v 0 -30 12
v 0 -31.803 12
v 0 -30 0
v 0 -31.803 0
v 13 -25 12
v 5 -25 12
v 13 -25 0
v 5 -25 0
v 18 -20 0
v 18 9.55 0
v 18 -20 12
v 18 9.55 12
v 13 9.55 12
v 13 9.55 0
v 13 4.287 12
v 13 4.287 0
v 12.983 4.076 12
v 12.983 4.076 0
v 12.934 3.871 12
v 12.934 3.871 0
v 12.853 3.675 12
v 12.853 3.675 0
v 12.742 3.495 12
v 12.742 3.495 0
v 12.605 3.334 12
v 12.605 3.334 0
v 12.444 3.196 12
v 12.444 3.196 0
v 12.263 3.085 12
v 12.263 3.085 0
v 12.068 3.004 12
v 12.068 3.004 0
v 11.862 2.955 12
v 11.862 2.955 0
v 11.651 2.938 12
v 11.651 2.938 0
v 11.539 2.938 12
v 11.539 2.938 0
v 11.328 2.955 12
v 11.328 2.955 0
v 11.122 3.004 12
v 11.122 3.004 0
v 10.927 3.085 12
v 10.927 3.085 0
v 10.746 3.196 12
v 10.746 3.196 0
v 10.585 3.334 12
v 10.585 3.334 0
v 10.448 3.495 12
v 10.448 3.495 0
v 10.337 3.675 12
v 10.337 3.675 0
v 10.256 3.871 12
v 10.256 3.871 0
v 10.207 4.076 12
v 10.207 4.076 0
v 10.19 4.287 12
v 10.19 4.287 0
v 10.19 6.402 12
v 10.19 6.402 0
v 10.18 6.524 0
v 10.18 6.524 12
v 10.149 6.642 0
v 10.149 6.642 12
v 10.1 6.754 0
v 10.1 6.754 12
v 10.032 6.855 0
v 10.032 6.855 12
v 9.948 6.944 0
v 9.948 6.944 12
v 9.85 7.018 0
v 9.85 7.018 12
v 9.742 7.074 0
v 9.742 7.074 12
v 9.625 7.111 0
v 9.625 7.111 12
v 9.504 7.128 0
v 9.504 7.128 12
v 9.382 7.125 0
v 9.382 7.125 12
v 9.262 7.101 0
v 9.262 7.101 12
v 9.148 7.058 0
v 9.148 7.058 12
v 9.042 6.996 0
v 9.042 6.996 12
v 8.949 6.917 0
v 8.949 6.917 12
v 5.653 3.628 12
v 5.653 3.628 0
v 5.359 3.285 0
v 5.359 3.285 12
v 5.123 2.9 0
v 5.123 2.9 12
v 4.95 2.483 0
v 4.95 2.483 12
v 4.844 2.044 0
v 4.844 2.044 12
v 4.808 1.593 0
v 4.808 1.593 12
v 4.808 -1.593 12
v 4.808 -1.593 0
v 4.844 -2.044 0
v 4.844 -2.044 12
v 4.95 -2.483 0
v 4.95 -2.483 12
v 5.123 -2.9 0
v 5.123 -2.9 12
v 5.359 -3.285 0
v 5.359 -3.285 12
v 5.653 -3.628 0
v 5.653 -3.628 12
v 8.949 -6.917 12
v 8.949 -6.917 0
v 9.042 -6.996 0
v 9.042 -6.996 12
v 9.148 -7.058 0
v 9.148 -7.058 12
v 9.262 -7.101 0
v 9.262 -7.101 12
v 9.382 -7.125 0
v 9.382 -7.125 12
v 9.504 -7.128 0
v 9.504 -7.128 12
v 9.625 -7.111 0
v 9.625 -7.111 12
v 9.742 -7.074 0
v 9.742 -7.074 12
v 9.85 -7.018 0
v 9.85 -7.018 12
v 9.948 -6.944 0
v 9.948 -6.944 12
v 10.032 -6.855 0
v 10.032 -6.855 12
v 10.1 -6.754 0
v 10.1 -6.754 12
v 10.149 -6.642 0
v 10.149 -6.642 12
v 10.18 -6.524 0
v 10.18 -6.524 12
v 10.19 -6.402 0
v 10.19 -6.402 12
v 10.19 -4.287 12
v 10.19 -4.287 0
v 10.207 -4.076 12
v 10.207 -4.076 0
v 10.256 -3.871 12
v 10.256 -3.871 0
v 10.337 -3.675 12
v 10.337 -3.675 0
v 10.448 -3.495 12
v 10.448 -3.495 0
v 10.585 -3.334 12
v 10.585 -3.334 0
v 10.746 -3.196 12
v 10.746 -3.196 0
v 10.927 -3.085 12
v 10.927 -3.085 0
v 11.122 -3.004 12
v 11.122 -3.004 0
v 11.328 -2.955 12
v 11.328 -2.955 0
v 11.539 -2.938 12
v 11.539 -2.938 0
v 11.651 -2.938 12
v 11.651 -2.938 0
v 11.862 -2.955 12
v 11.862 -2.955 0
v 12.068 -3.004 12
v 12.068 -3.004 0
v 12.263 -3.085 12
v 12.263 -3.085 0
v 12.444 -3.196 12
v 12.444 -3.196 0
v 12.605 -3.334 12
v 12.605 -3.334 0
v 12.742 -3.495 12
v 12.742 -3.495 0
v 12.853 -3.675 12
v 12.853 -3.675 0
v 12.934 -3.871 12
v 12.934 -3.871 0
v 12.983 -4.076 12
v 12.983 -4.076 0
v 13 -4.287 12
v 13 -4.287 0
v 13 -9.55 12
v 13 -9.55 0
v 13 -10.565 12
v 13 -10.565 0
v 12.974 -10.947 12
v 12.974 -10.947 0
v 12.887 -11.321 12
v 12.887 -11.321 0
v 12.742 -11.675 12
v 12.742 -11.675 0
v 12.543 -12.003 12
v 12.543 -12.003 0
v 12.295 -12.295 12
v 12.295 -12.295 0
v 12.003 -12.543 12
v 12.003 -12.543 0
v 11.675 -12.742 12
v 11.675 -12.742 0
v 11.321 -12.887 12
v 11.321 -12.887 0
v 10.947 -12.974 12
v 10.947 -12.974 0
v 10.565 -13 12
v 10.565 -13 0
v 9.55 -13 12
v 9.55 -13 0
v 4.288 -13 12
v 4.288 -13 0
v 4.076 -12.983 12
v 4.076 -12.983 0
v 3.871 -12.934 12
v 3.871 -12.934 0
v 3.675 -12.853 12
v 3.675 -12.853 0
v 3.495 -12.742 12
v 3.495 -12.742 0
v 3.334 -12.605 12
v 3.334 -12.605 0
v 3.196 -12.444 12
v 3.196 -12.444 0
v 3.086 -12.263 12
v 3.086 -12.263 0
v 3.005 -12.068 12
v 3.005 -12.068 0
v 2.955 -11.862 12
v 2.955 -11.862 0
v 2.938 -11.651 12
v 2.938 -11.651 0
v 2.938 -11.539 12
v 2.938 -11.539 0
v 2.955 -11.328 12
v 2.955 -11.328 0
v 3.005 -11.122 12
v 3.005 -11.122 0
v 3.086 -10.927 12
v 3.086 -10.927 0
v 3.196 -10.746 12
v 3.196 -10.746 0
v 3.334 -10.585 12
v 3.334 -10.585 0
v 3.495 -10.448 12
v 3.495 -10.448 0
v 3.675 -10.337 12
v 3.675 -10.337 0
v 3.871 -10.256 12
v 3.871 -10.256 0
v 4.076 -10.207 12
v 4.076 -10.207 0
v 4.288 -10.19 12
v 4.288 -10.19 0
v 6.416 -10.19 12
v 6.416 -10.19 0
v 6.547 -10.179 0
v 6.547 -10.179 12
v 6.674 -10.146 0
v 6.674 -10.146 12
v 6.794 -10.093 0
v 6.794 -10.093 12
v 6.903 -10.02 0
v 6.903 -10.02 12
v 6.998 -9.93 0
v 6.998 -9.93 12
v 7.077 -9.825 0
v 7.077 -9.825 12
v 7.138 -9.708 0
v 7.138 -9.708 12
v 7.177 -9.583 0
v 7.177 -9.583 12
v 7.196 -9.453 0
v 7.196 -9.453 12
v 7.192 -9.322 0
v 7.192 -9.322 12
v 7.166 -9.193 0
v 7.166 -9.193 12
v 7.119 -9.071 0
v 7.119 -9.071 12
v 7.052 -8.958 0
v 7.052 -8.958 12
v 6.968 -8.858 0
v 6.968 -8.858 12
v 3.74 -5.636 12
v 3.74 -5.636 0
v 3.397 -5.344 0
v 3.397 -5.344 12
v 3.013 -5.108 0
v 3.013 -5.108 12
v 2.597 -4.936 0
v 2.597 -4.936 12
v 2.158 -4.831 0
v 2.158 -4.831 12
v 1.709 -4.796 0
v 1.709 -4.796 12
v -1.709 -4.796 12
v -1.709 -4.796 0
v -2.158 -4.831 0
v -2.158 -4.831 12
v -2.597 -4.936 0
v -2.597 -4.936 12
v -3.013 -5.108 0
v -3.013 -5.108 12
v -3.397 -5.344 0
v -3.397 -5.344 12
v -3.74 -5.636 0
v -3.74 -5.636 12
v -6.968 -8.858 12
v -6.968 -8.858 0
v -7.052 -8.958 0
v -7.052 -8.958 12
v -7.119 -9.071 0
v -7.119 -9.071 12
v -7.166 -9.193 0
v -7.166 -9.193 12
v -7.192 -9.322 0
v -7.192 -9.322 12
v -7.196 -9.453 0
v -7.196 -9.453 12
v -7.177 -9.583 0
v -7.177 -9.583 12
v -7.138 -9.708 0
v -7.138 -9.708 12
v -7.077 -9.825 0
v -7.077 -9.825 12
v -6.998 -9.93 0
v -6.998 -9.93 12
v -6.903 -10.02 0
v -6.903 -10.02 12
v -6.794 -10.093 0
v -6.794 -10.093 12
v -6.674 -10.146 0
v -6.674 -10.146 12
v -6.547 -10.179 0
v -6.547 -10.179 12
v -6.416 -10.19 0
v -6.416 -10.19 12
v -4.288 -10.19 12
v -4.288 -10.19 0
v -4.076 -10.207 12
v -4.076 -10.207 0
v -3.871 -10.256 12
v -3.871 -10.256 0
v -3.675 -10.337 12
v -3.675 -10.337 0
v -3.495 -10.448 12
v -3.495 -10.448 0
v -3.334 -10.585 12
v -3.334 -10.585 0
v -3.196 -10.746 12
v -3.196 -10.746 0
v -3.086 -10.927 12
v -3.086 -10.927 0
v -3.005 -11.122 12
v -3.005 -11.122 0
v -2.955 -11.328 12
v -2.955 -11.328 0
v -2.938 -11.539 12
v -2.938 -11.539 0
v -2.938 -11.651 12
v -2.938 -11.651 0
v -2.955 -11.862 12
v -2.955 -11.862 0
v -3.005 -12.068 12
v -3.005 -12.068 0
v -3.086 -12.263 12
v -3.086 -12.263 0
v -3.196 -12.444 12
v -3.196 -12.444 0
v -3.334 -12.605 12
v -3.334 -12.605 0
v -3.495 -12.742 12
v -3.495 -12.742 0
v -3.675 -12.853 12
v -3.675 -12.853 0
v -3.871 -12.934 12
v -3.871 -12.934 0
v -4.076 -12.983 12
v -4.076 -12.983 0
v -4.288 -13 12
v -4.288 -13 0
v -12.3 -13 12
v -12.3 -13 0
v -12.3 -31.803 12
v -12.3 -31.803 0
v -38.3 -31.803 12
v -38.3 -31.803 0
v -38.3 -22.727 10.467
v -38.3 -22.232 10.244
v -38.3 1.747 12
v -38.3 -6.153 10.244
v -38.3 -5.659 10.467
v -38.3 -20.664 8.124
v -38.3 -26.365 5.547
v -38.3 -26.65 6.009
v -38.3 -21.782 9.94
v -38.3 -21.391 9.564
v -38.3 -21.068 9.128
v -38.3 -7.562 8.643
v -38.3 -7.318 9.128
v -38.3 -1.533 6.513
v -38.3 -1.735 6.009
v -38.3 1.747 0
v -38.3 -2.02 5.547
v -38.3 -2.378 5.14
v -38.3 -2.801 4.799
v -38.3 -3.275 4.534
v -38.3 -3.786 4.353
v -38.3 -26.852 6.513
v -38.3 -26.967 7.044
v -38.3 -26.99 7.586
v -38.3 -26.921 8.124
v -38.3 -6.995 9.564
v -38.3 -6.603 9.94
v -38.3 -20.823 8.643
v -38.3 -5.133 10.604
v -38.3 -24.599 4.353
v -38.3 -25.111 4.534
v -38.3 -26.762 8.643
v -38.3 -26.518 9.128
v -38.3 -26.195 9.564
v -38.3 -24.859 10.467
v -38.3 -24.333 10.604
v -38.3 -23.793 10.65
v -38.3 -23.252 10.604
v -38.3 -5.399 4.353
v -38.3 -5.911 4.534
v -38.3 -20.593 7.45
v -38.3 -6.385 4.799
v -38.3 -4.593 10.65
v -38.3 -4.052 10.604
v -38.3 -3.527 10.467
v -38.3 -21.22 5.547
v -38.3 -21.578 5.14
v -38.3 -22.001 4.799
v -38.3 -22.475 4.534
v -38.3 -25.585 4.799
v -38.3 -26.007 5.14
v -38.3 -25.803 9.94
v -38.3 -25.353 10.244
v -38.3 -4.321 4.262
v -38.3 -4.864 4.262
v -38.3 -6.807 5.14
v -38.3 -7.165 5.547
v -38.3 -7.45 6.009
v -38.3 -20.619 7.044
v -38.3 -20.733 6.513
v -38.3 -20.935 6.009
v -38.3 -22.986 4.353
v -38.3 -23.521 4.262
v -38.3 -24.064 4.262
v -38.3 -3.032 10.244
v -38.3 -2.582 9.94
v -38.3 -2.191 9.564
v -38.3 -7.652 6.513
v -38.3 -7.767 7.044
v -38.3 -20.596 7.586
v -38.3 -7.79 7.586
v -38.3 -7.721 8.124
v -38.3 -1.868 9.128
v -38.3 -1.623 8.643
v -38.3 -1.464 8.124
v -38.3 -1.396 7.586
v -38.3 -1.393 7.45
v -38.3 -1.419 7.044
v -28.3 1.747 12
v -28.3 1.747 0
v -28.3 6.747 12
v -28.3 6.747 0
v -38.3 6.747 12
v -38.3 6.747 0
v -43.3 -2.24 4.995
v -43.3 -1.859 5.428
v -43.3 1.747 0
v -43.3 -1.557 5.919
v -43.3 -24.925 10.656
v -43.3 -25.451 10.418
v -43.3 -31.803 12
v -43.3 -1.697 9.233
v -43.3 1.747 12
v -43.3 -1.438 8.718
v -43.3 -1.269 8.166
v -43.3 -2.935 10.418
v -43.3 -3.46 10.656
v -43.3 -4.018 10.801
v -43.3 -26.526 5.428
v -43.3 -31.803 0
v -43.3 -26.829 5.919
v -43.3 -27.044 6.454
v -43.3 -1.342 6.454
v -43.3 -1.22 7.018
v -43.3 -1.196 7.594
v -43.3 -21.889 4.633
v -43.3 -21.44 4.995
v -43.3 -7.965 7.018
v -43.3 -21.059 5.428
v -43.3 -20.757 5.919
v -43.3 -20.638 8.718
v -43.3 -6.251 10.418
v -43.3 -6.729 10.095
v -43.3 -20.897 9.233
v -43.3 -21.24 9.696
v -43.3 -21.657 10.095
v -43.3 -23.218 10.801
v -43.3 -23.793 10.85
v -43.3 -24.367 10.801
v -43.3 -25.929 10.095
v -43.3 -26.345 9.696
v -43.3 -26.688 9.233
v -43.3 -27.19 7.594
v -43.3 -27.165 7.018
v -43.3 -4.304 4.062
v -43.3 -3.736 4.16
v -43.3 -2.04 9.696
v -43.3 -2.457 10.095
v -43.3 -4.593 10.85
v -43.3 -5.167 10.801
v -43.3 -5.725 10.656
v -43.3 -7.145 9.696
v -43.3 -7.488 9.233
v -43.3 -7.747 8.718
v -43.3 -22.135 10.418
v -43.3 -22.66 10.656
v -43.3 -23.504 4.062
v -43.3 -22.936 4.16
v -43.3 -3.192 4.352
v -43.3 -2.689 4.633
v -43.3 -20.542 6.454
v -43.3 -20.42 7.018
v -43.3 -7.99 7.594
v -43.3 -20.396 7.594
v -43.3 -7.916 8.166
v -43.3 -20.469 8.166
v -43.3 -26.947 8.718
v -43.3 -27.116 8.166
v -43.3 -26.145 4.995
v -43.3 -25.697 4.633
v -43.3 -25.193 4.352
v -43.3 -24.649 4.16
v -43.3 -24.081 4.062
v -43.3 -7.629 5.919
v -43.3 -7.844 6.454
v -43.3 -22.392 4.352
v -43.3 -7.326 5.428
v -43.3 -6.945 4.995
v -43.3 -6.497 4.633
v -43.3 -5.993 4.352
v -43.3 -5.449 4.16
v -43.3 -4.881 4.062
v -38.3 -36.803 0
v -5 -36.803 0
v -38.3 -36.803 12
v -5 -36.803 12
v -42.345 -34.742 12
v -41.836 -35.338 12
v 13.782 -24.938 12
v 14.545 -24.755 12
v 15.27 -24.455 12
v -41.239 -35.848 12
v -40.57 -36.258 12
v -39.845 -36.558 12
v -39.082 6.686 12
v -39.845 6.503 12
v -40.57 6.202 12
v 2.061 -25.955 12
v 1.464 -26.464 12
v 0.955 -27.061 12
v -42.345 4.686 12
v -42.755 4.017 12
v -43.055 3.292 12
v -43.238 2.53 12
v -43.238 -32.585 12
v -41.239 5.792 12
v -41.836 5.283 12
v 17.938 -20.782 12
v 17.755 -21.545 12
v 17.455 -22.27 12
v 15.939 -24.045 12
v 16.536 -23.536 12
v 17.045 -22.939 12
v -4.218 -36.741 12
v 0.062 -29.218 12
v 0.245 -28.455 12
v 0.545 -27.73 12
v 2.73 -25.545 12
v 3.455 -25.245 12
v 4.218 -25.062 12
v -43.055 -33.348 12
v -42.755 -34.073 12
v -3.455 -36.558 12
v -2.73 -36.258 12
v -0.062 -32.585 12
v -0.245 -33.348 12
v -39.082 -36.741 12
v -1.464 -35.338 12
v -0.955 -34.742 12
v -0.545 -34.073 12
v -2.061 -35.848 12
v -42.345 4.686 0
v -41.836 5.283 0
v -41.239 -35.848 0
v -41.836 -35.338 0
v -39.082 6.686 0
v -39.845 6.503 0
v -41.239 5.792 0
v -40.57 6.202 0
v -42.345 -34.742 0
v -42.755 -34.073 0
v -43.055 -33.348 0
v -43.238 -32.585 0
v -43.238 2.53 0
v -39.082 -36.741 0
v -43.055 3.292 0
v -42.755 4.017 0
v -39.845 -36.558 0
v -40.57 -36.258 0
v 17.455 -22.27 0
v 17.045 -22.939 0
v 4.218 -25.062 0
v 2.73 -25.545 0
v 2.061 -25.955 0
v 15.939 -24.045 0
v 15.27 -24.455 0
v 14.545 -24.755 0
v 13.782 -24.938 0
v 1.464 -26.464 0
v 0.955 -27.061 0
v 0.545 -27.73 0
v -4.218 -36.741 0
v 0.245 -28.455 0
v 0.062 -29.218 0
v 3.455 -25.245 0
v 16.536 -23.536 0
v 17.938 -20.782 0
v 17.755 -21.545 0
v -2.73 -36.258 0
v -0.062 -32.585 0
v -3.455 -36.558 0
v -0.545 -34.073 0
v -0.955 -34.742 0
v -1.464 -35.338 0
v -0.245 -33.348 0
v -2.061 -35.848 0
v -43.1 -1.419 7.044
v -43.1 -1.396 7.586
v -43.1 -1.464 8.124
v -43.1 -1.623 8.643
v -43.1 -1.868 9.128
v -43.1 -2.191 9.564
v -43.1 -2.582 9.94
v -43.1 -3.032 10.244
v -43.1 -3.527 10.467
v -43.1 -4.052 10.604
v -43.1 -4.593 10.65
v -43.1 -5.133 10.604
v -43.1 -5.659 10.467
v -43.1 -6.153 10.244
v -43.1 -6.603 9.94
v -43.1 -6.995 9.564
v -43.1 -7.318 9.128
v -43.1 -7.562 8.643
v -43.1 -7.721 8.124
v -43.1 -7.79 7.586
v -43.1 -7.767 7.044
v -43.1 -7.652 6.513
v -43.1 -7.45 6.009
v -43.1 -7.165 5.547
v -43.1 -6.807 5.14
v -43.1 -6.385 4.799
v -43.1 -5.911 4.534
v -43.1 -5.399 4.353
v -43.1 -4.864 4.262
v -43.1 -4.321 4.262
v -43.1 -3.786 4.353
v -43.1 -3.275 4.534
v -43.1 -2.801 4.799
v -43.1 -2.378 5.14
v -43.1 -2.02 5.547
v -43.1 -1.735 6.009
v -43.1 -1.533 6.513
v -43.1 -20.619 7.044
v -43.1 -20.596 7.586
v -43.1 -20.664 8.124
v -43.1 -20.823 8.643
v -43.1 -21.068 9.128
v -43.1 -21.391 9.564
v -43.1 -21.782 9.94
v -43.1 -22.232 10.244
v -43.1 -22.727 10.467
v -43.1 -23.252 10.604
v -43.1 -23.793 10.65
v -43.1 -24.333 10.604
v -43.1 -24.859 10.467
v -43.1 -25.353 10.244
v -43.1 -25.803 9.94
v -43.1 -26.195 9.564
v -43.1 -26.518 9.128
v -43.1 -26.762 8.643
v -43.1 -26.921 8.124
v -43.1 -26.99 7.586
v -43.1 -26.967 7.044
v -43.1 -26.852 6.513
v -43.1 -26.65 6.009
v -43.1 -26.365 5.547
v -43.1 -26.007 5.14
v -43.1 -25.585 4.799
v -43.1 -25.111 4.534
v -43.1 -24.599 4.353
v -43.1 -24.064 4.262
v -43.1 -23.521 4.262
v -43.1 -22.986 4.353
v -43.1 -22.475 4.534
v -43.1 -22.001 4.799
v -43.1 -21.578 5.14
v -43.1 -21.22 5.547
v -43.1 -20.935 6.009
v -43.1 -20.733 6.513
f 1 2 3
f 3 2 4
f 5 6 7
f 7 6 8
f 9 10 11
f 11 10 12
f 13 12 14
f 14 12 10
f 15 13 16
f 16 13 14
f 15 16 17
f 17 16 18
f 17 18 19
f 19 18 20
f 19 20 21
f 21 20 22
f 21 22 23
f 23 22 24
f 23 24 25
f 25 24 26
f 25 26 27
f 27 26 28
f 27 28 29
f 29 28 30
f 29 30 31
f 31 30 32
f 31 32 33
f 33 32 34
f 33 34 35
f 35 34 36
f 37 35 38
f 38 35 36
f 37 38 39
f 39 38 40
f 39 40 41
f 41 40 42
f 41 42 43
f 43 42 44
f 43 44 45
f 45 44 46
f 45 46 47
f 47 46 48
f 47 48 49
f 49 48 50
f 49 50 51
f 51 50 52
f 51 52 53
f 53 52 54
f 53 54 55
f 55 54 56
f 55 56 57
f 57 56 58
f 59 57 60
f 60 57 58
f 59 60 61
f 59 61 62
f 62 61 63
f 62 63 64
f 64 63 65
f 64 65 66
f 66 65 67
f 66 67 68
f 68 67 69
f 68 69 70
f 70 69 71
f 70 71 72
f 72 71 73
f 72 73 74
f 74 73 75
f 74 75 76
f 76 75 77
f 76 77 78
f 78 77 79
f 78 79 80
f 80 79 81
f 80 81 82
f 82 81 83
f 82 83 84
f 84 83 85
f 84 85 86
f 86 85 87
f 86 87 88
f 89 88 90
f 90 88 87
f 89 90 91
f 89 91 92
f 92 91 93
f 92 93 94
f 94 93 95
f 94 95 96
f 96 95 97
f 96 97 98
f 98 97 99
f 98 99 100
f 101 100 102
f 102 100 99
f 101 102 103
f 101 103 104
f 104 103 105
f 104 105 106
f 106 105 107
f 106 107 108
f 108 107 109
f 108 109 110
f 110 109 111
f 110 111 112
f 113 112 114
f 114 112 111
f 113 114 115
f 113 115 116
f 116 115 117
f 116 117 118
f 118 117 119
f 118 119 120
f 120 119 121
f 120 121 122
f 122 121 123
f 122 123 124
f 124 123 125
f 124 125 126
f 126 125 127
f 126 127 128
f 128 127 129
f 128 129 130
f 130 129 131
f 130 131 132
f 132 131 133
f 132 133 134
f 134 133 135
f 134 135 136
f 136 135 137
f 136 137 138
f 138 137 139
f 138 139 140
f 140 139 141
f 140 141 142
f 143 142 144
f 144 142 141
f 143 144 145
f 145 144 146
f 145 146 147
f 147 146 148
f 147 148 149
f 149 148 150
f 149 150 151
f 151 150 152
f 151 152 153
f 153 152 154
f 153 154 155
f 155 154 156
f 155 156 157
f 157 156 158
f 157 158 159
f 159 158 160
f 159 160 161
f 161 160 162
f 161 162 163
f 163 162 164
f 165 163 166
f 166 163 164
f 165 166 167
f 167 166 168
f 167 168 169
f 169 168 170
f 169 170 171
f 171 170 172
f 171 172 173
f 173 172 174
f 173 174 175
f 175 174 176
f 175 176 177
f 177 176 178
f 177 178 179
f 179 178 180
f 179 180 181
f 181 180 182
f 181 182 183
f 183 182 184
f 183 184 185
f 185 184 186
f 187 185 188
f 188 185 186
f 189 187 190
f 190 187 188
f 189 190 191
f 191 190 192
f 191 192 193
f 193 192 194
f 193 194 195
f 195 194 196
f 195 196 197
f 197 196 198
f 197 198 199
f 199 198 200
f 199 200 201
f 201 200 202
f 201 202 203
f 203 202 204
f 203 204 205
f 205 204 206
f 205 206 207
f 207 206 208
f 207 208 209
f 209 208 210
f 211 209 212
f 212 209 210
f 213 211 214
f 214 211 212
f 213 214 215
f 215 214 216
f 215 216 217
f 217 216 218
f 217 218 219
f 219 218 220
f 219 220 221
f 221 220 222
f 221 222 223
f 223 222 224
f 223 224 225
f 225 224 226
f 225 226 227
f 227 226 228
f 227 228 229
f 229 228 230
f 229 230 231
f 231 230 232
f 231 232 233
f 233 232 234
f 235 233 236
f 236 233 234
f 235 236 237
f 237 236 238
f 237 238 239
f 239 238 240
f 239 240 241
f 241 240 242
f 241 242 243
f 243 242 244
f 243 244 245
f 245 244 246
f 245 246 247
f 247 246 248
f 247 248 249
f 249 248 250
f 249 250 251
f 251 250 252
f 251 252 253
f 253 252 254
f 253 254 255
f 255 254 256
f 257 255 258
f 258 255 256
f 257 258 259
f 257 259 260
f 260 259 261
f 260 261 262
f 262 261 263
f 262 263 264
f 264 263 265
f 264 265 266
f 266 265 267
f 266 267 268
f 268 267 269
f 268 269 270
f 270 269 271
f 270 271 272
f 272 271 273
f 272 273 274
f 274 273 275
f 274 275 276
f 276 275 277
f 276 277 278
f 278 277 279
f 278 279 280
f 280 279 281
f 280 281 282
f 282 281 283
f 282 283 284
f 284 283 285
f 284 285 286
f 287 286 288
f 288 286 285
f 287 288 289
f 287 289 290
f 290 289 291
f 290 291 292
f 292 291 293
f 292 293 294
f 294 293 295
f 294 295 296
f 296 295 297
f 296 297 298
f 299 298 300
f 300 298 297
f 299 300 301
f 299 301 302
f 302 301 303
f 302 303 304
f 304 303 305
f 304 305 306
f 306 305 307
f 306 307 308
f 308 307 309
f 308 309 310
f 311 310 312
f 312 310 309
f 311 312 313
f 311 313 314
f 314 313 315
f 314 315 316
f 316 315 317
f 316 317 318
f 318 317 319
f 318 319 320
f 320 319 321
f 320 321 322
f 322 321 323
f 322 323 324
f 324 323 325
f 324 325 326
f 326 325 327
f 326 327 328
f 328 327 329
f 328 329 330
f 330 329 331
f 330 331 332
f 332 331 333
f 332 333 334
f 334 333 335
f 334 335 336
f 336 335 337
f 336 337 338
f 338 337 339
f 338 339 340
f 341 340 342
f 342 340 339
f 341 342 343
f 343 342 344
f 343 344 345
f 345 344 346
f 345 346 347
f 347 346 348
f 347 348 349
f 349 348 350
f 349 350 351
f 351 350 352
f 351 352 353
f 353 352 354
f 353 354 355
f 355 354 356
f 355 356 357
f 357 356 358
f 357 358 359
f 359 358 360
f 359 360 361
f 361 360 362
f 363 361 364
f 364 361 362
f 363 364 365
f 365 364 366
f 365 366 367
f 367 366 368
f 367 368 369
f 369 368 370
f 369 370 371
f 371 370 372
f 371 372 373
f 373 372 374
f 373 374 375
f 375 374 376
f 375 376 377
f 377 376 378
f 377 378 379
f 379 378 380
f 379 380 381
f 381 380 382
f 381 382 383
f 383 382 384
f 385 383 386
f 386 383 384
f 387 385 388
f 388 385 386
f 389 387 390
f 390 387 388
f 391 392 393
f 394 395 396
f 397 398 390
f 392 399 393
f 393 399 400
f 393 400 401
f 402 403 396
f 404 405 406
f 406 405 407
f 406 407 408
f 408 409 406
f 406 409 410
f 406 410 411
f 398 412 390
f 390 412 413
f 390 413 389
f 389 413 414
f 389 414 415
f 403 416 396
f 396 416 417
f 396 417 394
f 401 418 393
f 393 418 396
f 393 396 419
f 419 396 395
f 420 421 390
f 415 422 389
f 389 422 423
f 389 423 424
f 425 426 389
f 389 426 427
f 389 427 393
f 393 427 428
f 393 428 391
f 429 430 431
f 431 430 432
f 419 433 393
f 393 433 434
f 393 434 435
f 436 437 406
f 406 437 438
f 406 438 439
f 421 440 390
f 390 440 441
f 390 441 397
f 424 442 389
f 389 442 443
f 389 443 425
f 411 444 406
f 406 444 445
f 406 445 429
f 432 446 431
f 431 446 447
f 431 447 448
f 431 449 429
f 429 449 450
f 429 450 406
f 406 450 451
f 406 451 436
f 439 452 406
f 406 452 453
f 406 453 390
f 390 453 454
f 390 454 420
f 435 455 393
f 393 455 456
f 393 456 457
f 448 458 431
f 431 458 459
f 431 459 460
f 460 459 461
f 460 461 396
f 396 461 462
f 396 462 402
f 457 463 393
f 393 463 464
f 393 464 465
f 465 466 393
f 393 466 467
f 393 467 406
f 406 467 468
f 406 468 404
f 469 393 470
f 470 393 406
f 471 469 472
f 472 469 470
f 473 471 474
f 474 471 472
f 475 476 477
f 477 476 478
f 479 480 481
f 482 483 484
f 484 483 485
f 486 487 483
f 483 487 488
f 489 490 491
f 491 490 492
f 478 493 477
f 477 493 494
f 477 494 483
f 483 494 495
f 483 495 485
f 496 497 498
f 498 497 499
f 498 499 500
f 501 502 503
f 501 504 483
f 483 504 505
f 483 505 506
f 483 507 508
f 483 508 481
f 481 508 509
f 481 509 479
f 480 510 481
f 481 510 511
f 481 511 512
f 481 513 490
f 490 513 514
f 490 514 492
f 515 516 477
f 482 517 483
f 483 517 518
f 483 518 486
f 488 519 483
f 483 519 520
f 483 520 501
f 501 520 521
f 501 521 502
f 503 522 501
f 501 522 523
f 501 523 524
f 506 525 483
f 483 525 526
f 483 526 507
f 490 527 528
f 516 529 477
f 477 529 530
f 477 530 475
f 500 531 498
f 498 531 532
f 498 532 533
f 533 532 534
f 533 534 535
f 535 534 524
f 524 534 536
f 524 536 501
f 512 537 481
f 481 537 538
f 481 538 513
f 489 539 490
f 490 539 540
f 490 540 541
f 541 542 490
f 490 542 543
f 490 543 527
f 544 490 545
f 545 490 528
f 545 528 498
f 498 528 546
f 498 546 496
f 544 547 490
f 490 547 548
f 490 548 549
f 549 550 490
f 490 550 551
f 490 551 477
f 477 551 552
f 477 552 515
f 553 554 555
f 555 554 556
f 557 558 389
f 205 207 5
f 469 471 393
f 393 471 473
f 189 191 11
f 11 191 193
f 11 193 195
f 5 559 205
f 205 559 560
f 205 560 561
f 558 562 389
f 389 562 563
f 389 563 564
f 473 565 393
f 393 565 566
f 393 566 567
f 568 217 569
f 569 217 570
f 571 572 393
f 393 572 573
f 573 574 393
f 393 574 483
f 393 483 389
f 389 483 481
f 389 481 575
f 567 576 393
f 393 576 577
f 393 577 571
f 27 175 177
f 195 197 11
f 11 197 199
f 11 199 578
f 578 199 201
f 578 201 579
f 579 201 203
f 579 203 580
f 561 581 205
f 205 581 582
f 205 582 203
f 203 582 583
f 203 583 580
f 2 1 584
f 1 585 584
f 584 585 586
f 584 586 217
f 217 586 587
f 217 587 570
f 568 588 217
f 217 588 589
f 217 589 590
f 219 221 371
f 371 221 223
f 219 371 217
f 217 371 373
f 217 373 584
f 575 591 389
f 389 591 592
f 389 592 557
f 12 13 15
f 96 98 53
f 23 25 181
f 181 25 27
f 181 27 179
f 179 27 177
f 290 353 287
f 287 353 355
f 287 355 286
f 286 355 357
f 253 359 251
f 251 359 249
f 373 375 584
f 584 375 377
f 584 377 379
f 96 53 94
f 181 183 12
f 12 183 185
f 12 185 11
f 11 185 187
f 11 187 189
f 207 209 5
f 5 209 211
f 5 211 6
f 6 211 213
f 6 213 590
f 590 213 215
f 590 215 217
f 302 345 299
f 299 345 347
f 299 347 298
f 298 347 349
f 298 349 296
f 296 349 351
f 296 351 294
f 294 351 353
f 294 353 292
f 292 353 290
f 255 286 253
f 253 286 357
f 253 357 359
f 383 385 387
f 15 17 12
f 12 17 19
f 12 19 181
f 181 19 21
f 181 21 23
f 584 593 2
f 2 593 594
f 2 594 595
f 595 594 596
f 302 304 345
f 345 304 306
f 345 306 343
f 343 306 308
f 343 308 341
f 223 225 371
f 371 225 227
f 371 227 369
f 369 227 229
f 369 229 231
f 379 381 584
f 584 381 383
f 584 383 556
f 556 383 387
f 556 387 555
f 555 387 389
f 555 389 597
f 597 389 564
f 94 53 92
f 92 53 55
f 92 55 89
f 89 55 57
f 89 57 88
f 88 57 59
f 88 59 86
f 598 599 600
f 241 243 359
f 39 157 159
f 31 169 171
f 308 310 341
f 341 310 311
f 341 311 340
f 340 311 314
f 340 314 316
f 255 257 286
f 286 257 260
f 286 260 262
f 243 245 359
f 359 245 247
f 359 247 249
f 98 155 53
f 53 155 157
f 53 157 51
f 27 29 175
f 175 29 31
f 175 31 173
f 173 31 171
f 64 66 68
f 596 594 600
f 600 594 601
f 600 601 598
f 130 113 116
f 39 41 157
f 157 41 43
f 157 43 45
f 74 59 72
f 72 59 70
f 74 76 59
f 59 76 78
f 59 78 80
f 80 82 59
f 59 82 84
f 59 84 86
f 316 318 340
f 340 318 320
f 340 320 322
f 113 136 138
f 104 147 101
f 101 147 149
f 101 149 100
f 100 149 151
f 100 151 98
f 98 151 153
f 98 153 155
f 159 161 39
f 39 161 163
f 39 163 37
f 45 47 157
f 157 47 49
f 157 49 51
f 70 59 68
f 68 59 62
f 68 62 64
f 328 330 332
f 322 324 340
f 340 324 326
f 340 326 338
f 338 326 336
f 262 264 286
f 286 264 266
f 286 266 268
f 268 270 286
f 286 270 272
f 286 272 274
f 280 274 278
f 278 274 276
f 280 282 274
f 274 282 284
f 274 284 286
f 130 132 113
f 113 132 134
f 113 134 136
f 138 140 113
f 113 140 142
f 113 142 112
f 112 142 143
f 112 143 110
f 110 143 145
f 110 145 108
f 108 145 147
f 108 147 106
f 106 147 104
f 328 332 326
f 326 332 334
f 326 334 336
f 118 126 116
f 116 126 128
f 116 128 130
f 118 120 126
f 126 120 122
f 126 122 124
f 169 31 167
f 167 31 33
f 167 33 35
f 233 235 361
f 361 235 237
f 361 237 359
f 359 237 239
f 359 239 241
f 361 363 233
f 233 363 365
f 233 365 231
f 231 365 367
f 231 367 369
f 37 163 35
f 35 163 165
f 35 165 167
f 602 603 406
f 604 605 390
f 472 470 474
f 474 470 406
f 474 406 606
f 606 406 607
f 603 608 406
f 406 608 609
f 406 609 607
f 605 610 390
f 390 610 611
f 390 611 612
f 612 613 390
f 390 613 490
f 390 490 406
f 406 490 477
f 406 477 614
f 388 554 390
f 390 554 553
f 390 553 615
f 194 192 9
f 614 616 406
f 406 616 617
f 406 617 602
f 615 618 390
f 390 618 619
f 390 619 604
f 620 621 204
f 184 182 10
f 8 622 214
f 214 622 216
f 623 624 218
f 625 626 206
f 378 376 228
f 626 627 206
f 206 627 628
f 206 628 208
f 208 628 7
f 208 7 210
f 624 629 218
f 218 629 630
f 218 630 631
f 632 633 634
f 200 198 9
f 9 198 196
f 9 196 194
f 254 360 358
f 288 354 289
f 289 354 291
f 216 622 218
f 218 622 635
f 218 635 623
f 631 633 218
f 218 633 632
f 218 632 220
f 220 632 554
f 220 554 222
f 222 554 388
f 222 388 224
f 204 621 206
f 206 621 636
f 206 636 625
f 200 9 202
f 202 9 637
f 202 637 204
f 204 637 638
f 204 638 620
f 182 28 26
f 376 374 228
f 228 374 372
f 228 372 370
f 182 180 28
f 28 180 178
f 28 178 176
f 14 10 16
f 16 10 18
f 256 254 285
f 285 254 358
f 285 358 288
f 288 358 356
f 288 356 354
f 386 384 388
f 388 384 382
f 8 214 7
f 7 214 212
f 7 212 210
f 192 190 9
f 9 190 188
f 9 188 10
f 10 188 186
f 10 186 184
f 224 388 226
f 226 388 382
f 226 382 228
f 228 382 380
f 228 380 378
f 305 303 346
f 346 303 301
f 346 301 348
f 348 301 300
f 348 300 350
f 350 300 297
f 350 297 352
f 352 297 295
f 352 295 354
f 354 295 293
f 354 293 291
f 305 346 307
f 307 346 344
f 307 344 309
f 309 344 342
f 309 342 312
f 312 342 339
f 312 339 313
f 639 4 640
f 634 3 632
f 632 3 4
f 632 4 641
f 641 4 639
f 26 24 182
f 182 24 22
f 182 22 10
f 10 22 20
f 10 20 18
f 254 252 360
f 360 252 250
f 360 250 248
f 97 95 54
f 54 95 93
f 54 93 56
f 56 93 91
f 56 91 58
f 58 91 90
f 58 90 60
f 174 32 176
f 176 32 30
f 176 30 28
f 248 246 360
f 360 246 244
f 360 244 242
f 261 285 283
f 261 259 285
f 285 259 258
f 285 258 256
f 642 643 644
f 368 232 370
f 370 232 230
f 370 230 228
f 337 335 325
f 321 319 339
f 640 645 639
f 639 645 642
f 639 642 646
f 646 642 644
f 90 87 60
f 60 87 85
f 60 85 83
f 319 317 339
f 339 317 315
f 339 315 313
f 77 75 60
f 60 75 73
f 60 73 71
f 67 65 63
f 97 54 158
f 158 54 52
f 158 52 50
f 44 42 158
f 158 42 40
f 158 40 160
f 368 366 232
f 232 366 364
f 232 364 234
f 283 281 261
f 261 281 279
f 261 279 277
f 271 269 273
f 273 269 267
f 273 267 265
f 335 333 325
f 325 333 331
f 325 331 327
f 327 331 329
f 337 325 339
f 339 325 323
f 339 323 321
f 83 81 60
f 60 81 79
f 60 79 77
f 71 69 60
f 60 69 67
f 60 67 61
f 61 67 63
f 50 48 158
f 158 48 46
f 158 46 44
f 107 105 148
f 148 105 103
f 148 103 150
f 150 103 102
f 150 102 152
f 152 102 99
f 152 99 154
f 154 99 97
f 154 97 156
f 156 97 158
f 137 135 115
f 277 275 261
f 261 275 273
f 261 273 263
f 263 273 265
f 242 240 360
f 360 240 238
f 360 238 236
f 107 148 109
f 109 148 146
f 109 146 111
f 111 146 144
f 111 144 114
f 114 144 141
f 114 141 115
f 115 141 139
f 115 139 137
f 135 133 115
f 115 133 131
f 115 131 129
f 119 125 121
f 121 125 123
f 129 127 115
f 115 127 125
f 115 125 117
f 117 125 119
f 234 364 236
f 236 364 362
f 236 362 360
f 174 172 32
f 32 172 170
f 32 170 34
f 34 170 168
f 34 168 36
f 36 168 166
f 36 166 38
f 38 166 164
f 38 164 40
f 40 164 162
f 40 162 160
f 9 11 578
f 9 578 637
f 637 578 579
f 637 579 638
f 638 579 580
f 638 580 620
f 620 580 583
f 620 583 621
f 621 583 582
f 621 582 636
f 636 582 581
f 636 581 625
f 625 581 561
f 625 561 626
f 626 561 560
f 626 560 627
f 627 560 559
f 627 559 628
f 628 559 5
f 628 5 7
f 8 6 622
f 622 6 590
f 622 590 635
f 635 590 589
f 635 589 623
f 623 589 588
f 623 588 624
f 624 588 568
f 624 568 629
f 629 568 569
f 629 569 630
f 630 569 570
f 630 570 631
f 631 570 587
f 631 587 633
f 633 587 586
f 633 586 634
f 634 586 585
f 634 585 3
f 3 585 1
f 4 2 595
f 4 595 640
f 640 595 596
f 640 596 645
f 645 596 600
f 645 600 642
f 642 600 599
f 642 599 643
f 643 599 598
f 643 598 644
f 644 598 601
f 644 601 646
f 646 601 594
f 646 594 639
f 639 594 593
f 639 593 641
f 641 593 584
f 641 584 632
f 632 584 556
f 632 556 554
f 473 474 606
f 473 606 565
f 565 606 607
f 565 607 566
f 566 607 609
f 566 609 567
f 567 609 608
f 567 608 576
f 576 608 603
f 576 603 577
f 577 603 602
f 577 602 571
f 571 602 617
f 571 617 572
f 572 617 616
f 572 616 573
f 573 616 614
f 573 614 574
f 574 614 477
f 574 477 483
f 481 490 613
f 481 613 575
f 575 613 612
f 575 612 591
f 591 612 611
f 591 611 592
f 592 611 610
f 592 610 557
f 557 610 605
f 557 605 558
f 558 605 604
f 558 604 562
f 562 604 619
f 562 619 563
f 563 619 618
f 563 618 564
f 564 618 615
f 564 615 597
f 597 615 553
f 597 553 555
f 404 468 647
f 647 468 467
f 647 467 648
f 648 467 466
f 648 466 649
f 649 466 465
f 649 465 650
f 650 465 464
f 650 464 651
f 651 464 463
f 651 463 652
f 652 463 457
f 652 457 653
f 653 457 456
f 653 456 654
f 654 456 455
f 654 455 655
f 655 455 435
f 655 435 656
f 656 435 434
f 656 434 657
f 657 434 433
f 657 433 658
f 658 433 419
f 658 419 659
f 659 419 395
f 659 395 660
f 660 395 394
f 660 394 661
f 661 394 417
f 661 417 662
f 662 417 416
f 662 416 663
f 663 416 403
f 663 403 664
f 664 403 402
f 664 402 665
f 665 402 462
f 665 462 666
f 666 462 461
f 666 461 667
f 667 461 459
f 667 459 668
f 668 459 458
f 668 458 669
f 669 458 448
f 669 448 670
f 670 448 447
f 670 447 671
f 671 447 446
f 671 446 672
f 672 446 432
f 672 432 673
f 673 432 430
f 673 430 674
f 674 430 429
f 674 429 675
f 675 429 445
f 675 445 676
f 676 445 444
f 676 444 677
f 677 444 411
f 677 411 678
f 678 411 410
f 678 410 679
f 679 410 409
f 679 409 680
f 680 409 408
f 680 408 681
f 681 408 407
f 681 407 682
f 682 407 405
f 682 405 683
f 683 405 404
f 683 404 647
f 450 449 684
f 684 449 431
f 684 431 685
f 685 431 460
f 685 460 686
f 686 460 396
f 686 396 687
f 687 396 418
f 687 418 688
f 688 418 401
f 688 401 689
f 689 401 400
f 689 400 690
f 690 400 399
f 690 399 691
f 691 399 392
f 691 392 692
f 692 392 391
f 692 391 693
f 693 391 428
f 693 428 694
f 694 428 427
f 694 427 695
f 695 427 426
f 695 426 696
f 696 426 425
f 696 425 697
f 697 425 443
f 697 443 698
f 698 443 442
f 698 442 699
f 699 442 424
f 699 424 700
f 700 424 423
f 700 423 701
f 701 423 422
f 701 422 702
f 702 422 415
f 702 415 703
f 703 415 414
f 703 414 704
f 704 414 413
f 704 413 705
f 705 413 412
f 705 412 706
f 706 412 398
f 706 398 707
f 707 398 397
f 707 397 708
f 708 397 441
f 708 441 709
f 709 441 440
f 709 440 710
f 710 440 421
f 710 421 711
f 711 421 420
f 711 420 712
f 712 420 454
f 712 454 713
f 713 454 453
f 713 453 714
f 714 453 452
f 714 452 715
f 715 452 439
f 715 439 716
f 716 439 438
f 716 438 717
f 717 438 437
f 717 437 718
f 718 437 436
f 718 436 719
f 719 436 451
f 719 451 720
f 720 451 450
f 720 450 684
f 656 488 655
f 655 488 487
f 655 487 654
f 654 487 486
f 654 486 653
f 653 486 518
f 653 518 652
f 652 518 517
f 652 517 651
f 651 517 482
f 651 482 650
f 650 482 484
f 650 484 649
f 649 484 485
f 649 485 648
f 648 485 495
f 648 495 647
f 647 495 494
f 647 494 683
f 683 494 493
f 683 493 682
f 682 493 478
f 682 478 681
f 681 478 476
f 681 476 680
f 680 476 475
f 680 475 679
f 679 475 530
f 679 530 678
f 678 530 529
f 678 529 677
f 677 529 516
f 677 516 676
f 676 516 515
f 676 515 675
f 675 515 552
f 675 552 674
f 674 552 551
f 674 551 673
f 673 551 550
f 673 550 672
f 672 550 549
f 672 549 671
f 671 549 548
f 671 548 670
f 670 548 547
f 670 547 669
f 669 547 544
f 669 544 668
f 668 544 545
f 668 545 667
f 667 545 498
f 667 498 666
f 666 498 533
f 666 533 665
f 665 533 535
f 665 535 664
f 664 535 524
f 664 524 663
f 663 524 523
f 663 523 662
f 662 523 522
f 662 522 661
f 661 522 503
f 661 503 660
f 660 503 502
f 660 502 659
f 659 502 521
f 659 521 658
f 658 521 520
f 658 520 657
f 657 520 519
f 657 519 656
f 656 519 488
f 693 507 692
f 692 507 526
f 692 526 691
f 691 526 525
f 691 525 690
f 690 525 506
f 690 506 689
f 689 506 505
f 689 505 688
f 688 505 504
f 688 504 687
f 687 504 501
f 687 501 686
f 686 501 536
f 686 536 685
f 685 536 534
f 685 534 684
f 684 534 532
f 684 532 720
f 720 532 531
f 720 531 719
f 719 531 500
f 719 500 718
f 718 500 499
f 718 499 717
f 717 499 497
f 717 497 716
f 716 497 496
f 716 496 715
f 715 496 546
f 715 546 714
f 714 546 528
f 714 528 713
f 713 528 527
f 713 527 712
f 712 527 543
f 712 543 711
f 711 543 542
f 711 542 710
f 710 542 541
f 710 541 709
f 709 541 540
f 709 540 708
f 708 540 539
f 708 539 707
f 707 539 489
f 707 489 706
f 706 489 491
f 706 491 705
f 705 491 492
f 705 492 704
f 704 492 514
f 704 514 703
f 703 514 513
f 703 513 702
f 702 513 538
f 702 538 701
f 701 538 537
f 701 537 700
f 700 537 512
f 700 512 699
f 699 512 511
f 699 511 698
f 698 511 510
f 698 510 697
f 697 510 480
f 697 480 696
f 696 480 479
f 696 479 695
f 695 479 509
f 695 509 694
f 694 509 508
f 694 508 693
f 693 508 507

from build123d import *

# Parameters (mm, degrees)
BOSS_EXTRUDE1_DEPTH = 12
FILLET1_R           = 5
FILLET2_R           = 5
CUT_EXTRUDE1_REACH  = 74.499
SKETCH3_R           = 3.2
CHAMFER1_SIZE       = 0.2


with BuildPart() as part:
    # Sketch2 → Boss-Extrude1 (new body)
    with BuildSketch(Plane.XY):
        with BuildLine():
            Line((-10.5918, -13), (-5.317126718, -13))
            Line((-5.317126718, -13), (-4.287512407, -13))
            ThreePointArc((-4.287512407, -13), (-3.333616586, -12.604883414), (-2.9385, -11.650987593))
            Line((-2.9385, -11.650987593), (-2.9385, -11.539212407))
            ThreePointArc((-2.9385, -11.539212407), (-3.333616586, -10.585316586), (-4.287512407, -10.1902))
            Line((-4.287512407, -10.1902), (-6.416408329, -10.1902))
            ThreePointArc((-6.416408329, -10.1902), (-7.137514675, -9.708134418), (-6.967711912, -8.857517813))
            Line((-6.967711912, -8.857517813), (-3.740331666, -5.636015806))
            ThreePointArc((-3.740331666, -5.636015806), (-2.808257752, -5.01414519), (-1.709253557, -4.7958))
            Line((-1.709253557, -4.7958), (1.709253557, -4.7958))
            ThreePointArc((1.709253557, -4.7958), (2.808257752, -5.01414519), (3.740331666, -5.636015806))
            Line((3.740331666, -5.636015806), (6.967711912, -8.857517813))
            ThreePointArc((6.967711912, -8.857517813), (7.137514675, -9.708134418), (6.416408329, -10.1902))
            Line((6.416408329, -10.1902), (4.287512407, -10.1902))
            ThreePointArc((4.287512407, -10.1902), (3.333616586, -10.585316586), (2.9385, -11.539212407))
            Line((2.9385, -11.539212407), (2.9385, -11.650987593))
            ThreePointArc((2.9385, -11.650987593), (3.333616586, -12.604883414), (4.287512407, -13))
            Line((4.287512407, -13), (5.317126718, -13))
            Line((5.317126718, -13), (9.550465633, -13))
            Line((9.550465633, -13), (10.564722121, -12.999847763))
            ThreePointArc((10.564722121, -12.999847763), (12.294654751, -12.29465435), (12.999847757, -10.564721553))
            Line((12.999847757, -10.564721553), (13, -9.550422515))
            Line((13, -9.550422515), (13, -6.3330836))
            Line((13, -6.3330836), (13, -5.3170836))
            Line((13, -5.3170836), (13, -4.287469289))
            ThreePointArc((13, -4.287469289), (12.604883414, -3.333573468), (11.650987593, -2.938456882))
            Line((11.650987593, -2.938456882), (11.539212407, -2.938456882))
            ThreePointArc((11.539212407, -2.938456882), (10.585316586, -3.333573468), (10.1902, -4.287469289))
            Line((10.1902, -4.287469289), (10.1902, -6.402089023))
            ThreePointArc((10.1902, -6.402089023), (9.74154152, -7.073969797), (8.94902056, -6.917034355))
            Line((8.94902056, -6.917034355), (5.652895046, -3.628441884))
            ThreePointArc((5.652895046, -3.628441884), (5.027976112, -2.694919539), (4.8085, -1.593185507))
            Line((4.8085, -1.593185507), (4.8085, 1.593185507))
            ThreePointArc((4.8085, 1.593185507), (5.027976112, 2.694919539), (5.652895046, 3.628441884))
            Line((5.652895046, 3.628441884), (8.94902056, 6.917034355))
            ThreePointArc((8.94902056, 6.917034355), (9.74154152, 7.073969797), (10.1902, 6.402089023))
            Line((10.1902, 6.402089023), (10.1902, 4.287469289))
            ThreePointArc((10.1902, 4.287469289), (10.585316586, 3.333573468), (11.539212407, 2.938456882))
            Line((11.539212407, 2.938456882), (11.650987593, 2.938456882))
            ThreePointArc((11.650987593, 2.938456882), (12.604883414, 3.333573468), (13, 4.287469289))
            Line((13, 4.287469289), (13, 5.3170836))
            Line((13, 5.3170836), (13, 6.3330836))
            Line((13, 6.3330836), (13, 9.550422515))
            Line((13, 9.550422515), (18, 9.550422515))
            Line((18, 9.550422515), (18, -25))
            Line((18, -25), (0, -25))
            Line((0, -25), (0, -36.8026666))
            Line((0, -36.8026666), (-12, -36.8026666))
            Line((-12, -36.8026666), (-43.3, -36.8026666))
            Line((-43.3, -36.8026666), (-43.3, -31.8026666))
            Line((-43.3, -31.8026666), (-43.3, 6.7473334))
            Line((-43.3, 6.7473334), (-28.3, 6.7473334))
            Line((-28.3, 6.7473334), (-28.3, 1.7473334))
            Line((-28.3, 1.7473334), (-38.3, 1.7473334))
            Line((-38.3, 1.7473334), (-38.3, -31.8026666))
            Line((-38.3, -31.8026666), (-12.3, -31.8026666))
            Line((-12.3, -31.8026666), (-12.3, -13))
            Line((-12.3, -13), (-10.5918, -13))
        make_face()
    extrude(amount=BOSS_EXTRUDE1_DEPTH)

    # Fillet1
    fillet1_edges = [part.edges().sort_by_distance(p)[0] for p in [
        (0, -36.8026666, 6),
        (18, -25, 6),
        (0, -25, 6),
    ]]
    fillet(fillet1_edges, radius=FILLET1_R)

    # Fillet2
    fillet2_edges = [part.edges().sort_by_distance(p)[0] for p in [
        (-43.3, -36.8026666, 6),
        (-43.3, 6.7473334, 6),
    ]]
    fillet(fillet2_edges, radius=FILLET2_R)

    # Sketch3 → Cut-Extrude1 (cut, up to next)
    with BuildSketch(Plane.ZY.offset(43.3), mode=Mode.PRIVATE) as cut_extrude1_sk1:
        with Locations((7.45, -23.7926666)):
            Circle(SKETCH3_R)
    cut_extrude1_tool1 = extrude(cut_extrude1_sk1.sketch, amount=-CUT_EXTRUDE1_REACH, mode=Mode.PRIVATE) & part.part
    # Sketch3 → Cut-Extrude1 (cut, up to next)
    with BuildSketch(Plane.ZY.offset(43.3), mode=Mode.PRIVATE) as cut_extrude1_sk2:
        with Locations((7.45, -4.5926666)):
            Circle(SKETCH3_R)
    cut_extrude1_tool2 = extrude(cut_extrude1_sk2.sketch, amount=-CUT_EXTRUDE1_REACH, mode=Mode.PRIVATE) & part.part
    add(cut_extrude1_tool1.solids().sort_by_distance((-43.3, -23.792667, 7.45))[0], mode=Mode.SUBTRACT)
    add(cut_extrude1_tool2.solids().sort_by_distance((-43.3, -4.592667, 7.45))[0], mode=Mode.SUBTRACT)

    # Chamfer1
    chamfer1_edges = [part.edges().sort_by_distance(p)[0] for p in [
        (-43.3, -23.7926666, 4.25),
        (-43.3, -4.5926666, 4.25),
    ]]
    chamfer(chamfer1_edges, length=CHAMFER1_SIZE)


solid = part.part
